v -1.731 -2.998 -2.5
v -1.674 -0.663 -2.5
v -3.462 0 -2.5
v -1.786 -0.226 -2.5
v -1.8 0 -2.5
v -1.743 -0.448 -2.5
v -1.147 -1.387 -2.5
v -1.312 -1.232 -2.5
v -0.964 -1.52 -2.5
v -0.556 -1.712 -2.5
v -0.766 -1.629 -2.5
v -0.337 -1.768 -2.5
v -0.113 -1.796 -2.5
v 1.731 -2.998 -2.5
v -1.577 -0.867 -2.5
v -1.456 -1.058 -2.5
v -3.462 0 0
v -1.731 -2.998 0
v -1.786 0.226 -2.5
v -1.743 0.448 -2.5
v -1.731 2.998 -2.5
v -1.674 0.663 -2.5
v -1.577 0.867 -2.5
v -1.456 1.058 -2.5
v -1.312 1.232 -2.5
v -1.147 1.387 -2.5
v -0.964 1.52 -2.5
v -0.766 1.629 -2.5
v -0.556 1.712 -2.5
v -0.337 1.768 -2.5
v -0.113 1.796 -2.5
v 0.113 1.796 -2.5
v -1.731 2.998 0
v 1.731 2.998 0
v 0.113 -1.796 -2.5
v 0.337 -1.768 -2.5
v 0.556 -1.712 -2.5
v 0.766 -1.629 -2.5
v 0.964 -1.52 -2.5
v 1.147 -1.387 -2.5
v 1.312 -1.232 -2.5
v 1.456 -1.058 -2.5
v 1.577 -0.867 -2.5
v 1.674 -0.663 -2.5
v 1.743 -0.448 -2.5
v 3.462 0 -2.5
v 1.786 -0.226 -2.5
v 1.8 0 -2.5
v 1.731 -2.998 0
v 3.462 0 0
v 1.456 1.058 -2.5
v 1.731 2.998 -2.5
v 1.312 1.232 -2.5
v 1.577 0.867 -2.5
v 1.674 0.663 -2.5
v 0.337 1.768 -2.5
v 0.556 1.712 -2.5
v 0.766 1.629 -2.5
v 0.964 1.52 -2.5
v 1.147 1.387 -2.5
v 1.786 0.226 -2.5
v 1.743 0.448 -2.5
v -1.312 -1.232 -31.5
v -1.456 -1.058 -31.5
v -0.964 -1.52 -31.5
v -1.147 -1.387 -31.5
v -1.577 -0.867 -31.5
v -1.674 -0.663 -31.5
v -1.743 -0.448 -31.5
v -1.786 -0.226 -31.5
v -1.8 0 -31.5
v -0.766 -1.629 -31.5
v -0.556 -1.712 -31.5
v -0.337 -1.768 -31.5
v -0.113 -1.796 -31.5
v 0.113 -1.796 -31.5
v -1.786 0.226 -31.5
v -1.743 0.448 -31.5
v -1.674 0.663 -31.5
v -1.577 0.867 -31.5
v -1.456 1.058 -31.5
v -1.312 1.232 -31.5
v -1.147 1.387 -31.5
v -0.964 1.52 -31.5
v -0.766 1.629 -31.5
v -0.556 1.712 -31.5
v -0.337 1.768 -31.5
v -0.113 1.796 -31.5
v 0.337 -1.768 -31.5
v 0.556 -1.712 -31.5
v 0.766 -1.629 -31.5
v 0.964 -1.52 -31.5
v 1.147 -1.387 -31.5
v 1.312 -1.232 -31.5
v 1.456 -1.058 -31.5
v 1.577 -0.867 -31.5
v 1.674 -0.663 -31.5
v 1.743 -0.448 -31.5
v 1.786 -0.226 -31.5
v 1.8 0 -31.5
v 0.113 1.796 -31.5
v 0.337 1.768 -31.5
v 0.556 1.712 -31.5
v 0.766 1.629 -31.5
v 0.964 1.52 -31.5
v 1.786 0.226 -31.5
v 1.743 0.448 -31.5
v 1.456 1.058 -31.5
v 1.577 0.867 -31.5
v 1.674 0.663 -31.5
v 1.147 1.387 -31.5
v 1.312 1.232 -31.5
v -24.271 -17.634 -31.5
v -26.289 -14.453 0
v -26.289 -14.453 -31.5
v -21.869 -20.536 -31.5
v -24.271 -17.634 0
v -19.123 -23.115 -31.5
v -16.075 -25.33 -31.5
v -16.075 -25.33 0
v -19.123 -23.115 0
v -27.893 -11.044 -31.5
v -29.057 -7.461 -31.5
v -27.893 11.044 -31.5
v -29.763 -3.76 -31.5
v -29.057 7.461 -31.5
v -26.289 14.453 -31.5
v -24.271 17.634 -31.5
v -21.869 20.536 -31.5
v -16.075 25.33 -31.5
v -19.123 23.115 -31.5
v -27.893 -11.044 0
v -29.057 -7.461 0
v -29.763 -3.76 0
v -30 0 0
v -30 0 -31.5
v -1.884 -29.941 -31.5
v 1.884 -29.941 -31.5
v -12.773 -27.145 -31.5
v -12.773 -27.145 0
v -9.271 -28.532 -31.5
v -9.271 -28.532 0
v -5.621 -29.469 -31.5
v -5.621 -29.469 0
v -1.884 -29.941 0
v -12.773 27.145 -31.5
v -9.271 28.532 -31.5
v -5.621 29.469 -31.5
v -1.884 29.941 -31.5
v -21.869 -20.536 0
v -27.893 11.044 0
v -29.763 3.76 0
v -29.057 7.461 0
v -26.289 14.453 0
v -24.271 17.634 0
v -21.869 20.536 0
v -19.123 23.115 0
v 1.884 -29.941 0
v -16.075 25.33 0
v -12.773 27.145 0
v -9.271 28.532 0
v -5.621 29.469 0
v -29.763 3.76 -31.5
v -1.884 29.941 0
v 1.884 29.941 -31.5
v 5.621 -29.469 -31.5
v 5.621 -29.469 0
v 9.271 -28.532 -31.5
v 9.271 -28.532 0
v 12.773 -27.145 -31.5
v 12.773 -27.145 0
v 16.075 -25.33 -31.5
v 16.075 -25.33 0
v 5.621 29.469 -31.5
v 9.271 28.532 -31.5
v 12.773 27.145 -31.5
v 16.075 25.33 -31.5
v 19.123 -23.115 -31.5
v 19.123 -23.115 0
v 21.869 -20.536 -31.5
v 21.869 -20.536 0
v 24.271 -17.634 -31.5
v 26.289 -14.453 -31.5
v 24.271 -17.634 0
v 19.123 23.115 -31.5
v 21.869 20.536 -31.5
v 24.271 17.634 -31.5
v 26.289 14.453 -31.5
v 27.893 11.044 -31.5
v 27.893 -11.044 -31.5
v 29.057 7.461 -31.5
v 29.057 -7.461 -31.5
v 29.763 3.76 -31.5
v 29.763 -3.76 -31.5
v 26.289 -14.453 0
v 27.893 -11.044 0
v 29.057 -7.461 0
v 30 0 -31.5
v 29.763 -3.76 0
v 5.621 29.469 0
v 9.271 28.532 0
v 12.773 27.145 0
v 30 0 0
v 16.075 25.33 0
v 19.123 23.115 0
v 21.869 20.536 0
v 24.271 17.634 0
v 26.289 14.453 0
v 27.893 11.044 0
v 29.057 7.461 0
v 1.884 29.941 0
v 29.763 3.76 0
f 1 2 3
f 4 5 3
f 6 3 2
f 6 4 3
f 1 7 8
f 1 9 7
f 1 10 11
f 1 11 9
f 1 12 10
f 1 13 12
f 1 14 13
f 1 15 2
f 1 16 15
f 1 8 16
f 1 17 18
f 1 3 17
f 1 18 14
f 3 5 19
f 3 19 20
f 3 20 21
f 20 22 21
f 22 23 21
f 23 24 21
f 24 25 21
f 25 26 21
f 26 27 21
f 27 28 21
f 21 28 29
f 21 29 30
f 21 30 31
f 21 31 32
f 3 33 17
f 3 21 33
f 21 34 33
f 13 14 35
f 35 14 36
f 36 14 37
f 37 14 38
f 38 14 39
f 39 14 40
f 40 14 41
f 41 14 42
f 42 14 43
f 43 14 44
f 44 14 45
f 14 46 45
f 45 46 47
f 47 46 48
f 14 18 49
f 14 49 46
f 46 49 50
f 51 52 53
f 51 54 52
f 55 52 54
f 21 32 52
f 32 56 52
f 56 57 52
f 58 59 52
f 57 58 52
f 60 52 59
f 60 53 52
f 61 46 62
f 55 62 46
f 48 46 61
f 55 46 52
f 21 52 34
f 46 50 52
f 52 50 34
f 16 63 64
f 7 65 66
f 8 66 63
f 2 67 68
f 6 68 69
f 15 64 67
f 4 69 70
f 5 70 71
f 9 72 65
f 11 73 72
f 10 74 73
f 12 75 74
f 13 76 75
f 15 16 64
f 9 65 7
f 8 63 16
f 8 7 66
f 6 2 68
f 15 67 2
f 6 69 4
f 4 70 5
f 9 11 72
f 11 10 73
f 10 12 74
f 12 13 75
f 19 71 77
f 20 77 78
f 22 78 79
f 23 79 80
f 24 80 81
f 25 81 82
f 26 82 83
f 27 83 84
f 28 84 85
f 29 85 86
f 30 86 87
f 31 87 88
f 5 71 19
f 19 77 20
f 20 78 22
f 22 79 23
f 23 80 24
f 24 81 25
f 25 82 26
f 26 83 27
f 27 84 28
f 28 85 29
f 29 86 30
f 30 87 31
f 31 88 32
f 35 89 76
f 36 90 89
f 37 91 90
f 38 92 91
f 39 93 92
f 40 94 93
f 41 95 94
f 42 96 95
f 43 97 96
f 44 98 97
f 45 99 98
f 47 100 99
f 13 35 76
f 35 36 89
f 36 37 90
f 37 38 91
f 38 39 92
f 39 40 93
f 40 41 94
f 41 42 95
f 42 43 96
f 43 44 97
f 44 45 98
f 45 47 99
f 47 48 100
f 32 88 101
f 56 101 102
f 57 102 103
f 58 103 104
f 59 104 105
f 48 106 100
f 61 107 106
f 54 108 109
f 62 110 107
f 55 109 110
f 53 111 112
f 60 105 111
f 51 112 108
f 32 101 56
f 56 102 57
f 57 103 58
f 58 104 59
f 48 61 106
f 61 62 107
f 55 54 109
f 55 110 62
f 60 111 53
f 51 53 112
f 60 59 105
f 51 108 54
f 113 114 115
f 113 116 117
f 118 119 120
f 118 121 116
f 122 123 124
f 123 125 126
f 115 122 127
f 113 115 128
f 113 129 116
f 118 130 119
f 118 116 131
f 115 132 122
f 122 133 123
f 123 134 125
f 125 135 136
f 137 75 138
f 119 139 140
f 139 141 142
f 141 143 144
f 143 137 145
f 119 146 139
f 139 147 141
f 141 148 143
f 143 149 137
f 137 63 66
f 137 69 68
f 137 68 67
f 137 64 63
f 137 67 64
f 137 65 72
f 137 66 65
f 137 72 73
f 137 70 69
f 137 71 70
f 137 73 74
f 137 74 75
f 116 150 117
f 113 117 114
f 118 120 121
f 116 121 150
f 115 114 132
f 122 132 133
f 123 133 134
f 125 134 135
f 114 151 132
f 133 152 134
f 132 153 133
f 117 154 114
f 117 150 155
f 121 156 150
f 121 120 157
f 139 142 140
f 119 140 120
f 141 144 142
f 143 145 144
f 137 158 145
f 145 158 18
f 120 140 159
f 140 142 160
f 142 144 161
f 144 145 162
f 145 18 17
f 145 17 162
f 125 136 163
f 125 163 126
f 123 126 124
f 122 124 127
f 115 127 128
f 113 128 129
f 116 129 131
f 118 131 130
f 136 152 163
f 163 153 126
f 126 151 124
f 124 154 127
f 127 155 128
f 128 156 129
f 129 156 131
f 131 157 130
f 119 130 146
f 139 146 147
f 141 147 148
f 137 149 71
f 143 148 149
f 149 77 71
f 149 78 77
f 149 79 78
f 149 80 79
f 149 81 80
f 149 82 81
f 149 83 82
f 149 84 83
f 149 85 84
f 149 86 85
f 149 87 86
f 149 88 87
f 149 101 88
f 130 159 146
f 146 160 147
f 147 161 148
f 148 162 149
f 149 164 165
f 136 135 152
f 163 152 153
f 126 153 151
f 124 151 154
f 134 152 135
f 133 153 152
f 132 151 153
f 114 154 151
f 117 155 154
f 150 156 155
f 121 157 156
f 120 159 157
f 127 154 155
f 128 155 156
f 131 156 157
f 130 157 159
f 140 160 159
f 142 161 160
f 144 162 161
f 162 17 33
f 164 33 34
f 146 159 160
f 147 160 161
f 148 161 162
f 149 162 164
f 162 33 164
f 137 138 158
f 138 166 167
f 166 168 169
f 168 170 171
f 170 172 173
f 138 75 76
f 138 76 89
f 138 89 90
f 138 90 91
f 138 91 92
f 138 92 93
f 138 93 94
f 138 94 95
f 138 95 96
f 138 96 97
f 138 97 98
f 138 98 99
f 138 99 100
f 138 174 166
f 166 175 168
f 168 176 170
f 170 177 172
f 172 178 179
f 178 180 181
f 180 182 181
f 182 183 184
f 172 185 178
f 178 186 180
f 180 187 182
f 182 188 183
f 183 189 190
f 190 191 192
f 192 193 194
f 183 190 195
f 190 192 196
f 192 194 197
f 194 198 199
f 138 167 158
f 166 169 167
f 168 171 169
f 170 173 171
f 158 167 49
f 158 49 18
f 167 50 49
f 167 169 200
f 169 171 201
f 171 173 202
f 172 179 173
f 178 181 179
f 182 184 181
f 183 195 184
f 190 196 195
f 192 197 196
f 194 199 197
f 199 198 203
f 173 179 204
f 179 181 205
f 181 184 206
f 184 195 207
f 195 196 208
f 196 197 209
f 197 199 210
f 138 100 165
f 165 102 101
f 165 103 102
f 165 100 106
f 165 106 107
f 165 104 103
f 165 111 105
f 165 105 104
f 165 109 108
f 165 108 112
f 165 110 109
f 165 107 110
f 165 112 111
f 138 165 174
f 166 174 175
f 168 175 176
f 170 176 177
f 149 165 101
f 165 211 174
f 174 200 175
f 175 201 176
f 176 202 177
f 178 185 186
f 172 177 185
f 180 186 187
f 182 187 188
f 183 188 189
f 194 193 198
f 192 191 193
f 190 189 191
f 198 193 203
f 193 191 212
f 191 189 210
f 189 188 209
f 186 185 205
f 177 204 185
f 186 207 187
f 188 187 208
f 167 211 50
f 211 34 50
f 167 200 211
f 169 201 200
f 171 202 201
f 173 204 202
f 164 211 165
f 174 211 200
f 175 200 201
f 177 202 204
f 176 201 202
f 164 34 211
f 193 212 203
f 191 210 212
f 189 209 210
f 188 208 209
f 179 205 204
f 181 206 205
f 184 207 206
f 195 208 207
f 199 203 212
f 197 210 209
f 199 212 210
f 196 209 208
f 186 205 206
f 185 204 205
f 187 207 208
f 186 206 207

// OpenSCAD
$fn = 50;


difference() {
	union() {
		translate(v = [0, 0, -31.5000000000]) {
			cylinder(h = 31.5000000000, r = 30.0000000000);
		}
	}
	union() {
		translate(v = [0, 0, 0]) {
			rotate(a = [0, 0, 0]) {
				difference() {
					union() {
						translate(v = [0, 0, -2.5000000000]) {
							linear_extrude(height = 2.5000000000) {
								polygon(points = [[3.4620000000, 0.0000000000], [1.7310000000, 2.9981799479], [-1.7310000000, 2.9981799479], [-3.4620000000, 0.0000000000], [-1.7310000000, -2.9981799479], [1.7310000000, -2.9981799479]]);
							}
						}
					}
					union();
				}
			}
		}
		#translate(v = [0, 0, -100.0000000000]) {
			cylinder(h = 200, r = 1.8000000000);
		}
	}
}
